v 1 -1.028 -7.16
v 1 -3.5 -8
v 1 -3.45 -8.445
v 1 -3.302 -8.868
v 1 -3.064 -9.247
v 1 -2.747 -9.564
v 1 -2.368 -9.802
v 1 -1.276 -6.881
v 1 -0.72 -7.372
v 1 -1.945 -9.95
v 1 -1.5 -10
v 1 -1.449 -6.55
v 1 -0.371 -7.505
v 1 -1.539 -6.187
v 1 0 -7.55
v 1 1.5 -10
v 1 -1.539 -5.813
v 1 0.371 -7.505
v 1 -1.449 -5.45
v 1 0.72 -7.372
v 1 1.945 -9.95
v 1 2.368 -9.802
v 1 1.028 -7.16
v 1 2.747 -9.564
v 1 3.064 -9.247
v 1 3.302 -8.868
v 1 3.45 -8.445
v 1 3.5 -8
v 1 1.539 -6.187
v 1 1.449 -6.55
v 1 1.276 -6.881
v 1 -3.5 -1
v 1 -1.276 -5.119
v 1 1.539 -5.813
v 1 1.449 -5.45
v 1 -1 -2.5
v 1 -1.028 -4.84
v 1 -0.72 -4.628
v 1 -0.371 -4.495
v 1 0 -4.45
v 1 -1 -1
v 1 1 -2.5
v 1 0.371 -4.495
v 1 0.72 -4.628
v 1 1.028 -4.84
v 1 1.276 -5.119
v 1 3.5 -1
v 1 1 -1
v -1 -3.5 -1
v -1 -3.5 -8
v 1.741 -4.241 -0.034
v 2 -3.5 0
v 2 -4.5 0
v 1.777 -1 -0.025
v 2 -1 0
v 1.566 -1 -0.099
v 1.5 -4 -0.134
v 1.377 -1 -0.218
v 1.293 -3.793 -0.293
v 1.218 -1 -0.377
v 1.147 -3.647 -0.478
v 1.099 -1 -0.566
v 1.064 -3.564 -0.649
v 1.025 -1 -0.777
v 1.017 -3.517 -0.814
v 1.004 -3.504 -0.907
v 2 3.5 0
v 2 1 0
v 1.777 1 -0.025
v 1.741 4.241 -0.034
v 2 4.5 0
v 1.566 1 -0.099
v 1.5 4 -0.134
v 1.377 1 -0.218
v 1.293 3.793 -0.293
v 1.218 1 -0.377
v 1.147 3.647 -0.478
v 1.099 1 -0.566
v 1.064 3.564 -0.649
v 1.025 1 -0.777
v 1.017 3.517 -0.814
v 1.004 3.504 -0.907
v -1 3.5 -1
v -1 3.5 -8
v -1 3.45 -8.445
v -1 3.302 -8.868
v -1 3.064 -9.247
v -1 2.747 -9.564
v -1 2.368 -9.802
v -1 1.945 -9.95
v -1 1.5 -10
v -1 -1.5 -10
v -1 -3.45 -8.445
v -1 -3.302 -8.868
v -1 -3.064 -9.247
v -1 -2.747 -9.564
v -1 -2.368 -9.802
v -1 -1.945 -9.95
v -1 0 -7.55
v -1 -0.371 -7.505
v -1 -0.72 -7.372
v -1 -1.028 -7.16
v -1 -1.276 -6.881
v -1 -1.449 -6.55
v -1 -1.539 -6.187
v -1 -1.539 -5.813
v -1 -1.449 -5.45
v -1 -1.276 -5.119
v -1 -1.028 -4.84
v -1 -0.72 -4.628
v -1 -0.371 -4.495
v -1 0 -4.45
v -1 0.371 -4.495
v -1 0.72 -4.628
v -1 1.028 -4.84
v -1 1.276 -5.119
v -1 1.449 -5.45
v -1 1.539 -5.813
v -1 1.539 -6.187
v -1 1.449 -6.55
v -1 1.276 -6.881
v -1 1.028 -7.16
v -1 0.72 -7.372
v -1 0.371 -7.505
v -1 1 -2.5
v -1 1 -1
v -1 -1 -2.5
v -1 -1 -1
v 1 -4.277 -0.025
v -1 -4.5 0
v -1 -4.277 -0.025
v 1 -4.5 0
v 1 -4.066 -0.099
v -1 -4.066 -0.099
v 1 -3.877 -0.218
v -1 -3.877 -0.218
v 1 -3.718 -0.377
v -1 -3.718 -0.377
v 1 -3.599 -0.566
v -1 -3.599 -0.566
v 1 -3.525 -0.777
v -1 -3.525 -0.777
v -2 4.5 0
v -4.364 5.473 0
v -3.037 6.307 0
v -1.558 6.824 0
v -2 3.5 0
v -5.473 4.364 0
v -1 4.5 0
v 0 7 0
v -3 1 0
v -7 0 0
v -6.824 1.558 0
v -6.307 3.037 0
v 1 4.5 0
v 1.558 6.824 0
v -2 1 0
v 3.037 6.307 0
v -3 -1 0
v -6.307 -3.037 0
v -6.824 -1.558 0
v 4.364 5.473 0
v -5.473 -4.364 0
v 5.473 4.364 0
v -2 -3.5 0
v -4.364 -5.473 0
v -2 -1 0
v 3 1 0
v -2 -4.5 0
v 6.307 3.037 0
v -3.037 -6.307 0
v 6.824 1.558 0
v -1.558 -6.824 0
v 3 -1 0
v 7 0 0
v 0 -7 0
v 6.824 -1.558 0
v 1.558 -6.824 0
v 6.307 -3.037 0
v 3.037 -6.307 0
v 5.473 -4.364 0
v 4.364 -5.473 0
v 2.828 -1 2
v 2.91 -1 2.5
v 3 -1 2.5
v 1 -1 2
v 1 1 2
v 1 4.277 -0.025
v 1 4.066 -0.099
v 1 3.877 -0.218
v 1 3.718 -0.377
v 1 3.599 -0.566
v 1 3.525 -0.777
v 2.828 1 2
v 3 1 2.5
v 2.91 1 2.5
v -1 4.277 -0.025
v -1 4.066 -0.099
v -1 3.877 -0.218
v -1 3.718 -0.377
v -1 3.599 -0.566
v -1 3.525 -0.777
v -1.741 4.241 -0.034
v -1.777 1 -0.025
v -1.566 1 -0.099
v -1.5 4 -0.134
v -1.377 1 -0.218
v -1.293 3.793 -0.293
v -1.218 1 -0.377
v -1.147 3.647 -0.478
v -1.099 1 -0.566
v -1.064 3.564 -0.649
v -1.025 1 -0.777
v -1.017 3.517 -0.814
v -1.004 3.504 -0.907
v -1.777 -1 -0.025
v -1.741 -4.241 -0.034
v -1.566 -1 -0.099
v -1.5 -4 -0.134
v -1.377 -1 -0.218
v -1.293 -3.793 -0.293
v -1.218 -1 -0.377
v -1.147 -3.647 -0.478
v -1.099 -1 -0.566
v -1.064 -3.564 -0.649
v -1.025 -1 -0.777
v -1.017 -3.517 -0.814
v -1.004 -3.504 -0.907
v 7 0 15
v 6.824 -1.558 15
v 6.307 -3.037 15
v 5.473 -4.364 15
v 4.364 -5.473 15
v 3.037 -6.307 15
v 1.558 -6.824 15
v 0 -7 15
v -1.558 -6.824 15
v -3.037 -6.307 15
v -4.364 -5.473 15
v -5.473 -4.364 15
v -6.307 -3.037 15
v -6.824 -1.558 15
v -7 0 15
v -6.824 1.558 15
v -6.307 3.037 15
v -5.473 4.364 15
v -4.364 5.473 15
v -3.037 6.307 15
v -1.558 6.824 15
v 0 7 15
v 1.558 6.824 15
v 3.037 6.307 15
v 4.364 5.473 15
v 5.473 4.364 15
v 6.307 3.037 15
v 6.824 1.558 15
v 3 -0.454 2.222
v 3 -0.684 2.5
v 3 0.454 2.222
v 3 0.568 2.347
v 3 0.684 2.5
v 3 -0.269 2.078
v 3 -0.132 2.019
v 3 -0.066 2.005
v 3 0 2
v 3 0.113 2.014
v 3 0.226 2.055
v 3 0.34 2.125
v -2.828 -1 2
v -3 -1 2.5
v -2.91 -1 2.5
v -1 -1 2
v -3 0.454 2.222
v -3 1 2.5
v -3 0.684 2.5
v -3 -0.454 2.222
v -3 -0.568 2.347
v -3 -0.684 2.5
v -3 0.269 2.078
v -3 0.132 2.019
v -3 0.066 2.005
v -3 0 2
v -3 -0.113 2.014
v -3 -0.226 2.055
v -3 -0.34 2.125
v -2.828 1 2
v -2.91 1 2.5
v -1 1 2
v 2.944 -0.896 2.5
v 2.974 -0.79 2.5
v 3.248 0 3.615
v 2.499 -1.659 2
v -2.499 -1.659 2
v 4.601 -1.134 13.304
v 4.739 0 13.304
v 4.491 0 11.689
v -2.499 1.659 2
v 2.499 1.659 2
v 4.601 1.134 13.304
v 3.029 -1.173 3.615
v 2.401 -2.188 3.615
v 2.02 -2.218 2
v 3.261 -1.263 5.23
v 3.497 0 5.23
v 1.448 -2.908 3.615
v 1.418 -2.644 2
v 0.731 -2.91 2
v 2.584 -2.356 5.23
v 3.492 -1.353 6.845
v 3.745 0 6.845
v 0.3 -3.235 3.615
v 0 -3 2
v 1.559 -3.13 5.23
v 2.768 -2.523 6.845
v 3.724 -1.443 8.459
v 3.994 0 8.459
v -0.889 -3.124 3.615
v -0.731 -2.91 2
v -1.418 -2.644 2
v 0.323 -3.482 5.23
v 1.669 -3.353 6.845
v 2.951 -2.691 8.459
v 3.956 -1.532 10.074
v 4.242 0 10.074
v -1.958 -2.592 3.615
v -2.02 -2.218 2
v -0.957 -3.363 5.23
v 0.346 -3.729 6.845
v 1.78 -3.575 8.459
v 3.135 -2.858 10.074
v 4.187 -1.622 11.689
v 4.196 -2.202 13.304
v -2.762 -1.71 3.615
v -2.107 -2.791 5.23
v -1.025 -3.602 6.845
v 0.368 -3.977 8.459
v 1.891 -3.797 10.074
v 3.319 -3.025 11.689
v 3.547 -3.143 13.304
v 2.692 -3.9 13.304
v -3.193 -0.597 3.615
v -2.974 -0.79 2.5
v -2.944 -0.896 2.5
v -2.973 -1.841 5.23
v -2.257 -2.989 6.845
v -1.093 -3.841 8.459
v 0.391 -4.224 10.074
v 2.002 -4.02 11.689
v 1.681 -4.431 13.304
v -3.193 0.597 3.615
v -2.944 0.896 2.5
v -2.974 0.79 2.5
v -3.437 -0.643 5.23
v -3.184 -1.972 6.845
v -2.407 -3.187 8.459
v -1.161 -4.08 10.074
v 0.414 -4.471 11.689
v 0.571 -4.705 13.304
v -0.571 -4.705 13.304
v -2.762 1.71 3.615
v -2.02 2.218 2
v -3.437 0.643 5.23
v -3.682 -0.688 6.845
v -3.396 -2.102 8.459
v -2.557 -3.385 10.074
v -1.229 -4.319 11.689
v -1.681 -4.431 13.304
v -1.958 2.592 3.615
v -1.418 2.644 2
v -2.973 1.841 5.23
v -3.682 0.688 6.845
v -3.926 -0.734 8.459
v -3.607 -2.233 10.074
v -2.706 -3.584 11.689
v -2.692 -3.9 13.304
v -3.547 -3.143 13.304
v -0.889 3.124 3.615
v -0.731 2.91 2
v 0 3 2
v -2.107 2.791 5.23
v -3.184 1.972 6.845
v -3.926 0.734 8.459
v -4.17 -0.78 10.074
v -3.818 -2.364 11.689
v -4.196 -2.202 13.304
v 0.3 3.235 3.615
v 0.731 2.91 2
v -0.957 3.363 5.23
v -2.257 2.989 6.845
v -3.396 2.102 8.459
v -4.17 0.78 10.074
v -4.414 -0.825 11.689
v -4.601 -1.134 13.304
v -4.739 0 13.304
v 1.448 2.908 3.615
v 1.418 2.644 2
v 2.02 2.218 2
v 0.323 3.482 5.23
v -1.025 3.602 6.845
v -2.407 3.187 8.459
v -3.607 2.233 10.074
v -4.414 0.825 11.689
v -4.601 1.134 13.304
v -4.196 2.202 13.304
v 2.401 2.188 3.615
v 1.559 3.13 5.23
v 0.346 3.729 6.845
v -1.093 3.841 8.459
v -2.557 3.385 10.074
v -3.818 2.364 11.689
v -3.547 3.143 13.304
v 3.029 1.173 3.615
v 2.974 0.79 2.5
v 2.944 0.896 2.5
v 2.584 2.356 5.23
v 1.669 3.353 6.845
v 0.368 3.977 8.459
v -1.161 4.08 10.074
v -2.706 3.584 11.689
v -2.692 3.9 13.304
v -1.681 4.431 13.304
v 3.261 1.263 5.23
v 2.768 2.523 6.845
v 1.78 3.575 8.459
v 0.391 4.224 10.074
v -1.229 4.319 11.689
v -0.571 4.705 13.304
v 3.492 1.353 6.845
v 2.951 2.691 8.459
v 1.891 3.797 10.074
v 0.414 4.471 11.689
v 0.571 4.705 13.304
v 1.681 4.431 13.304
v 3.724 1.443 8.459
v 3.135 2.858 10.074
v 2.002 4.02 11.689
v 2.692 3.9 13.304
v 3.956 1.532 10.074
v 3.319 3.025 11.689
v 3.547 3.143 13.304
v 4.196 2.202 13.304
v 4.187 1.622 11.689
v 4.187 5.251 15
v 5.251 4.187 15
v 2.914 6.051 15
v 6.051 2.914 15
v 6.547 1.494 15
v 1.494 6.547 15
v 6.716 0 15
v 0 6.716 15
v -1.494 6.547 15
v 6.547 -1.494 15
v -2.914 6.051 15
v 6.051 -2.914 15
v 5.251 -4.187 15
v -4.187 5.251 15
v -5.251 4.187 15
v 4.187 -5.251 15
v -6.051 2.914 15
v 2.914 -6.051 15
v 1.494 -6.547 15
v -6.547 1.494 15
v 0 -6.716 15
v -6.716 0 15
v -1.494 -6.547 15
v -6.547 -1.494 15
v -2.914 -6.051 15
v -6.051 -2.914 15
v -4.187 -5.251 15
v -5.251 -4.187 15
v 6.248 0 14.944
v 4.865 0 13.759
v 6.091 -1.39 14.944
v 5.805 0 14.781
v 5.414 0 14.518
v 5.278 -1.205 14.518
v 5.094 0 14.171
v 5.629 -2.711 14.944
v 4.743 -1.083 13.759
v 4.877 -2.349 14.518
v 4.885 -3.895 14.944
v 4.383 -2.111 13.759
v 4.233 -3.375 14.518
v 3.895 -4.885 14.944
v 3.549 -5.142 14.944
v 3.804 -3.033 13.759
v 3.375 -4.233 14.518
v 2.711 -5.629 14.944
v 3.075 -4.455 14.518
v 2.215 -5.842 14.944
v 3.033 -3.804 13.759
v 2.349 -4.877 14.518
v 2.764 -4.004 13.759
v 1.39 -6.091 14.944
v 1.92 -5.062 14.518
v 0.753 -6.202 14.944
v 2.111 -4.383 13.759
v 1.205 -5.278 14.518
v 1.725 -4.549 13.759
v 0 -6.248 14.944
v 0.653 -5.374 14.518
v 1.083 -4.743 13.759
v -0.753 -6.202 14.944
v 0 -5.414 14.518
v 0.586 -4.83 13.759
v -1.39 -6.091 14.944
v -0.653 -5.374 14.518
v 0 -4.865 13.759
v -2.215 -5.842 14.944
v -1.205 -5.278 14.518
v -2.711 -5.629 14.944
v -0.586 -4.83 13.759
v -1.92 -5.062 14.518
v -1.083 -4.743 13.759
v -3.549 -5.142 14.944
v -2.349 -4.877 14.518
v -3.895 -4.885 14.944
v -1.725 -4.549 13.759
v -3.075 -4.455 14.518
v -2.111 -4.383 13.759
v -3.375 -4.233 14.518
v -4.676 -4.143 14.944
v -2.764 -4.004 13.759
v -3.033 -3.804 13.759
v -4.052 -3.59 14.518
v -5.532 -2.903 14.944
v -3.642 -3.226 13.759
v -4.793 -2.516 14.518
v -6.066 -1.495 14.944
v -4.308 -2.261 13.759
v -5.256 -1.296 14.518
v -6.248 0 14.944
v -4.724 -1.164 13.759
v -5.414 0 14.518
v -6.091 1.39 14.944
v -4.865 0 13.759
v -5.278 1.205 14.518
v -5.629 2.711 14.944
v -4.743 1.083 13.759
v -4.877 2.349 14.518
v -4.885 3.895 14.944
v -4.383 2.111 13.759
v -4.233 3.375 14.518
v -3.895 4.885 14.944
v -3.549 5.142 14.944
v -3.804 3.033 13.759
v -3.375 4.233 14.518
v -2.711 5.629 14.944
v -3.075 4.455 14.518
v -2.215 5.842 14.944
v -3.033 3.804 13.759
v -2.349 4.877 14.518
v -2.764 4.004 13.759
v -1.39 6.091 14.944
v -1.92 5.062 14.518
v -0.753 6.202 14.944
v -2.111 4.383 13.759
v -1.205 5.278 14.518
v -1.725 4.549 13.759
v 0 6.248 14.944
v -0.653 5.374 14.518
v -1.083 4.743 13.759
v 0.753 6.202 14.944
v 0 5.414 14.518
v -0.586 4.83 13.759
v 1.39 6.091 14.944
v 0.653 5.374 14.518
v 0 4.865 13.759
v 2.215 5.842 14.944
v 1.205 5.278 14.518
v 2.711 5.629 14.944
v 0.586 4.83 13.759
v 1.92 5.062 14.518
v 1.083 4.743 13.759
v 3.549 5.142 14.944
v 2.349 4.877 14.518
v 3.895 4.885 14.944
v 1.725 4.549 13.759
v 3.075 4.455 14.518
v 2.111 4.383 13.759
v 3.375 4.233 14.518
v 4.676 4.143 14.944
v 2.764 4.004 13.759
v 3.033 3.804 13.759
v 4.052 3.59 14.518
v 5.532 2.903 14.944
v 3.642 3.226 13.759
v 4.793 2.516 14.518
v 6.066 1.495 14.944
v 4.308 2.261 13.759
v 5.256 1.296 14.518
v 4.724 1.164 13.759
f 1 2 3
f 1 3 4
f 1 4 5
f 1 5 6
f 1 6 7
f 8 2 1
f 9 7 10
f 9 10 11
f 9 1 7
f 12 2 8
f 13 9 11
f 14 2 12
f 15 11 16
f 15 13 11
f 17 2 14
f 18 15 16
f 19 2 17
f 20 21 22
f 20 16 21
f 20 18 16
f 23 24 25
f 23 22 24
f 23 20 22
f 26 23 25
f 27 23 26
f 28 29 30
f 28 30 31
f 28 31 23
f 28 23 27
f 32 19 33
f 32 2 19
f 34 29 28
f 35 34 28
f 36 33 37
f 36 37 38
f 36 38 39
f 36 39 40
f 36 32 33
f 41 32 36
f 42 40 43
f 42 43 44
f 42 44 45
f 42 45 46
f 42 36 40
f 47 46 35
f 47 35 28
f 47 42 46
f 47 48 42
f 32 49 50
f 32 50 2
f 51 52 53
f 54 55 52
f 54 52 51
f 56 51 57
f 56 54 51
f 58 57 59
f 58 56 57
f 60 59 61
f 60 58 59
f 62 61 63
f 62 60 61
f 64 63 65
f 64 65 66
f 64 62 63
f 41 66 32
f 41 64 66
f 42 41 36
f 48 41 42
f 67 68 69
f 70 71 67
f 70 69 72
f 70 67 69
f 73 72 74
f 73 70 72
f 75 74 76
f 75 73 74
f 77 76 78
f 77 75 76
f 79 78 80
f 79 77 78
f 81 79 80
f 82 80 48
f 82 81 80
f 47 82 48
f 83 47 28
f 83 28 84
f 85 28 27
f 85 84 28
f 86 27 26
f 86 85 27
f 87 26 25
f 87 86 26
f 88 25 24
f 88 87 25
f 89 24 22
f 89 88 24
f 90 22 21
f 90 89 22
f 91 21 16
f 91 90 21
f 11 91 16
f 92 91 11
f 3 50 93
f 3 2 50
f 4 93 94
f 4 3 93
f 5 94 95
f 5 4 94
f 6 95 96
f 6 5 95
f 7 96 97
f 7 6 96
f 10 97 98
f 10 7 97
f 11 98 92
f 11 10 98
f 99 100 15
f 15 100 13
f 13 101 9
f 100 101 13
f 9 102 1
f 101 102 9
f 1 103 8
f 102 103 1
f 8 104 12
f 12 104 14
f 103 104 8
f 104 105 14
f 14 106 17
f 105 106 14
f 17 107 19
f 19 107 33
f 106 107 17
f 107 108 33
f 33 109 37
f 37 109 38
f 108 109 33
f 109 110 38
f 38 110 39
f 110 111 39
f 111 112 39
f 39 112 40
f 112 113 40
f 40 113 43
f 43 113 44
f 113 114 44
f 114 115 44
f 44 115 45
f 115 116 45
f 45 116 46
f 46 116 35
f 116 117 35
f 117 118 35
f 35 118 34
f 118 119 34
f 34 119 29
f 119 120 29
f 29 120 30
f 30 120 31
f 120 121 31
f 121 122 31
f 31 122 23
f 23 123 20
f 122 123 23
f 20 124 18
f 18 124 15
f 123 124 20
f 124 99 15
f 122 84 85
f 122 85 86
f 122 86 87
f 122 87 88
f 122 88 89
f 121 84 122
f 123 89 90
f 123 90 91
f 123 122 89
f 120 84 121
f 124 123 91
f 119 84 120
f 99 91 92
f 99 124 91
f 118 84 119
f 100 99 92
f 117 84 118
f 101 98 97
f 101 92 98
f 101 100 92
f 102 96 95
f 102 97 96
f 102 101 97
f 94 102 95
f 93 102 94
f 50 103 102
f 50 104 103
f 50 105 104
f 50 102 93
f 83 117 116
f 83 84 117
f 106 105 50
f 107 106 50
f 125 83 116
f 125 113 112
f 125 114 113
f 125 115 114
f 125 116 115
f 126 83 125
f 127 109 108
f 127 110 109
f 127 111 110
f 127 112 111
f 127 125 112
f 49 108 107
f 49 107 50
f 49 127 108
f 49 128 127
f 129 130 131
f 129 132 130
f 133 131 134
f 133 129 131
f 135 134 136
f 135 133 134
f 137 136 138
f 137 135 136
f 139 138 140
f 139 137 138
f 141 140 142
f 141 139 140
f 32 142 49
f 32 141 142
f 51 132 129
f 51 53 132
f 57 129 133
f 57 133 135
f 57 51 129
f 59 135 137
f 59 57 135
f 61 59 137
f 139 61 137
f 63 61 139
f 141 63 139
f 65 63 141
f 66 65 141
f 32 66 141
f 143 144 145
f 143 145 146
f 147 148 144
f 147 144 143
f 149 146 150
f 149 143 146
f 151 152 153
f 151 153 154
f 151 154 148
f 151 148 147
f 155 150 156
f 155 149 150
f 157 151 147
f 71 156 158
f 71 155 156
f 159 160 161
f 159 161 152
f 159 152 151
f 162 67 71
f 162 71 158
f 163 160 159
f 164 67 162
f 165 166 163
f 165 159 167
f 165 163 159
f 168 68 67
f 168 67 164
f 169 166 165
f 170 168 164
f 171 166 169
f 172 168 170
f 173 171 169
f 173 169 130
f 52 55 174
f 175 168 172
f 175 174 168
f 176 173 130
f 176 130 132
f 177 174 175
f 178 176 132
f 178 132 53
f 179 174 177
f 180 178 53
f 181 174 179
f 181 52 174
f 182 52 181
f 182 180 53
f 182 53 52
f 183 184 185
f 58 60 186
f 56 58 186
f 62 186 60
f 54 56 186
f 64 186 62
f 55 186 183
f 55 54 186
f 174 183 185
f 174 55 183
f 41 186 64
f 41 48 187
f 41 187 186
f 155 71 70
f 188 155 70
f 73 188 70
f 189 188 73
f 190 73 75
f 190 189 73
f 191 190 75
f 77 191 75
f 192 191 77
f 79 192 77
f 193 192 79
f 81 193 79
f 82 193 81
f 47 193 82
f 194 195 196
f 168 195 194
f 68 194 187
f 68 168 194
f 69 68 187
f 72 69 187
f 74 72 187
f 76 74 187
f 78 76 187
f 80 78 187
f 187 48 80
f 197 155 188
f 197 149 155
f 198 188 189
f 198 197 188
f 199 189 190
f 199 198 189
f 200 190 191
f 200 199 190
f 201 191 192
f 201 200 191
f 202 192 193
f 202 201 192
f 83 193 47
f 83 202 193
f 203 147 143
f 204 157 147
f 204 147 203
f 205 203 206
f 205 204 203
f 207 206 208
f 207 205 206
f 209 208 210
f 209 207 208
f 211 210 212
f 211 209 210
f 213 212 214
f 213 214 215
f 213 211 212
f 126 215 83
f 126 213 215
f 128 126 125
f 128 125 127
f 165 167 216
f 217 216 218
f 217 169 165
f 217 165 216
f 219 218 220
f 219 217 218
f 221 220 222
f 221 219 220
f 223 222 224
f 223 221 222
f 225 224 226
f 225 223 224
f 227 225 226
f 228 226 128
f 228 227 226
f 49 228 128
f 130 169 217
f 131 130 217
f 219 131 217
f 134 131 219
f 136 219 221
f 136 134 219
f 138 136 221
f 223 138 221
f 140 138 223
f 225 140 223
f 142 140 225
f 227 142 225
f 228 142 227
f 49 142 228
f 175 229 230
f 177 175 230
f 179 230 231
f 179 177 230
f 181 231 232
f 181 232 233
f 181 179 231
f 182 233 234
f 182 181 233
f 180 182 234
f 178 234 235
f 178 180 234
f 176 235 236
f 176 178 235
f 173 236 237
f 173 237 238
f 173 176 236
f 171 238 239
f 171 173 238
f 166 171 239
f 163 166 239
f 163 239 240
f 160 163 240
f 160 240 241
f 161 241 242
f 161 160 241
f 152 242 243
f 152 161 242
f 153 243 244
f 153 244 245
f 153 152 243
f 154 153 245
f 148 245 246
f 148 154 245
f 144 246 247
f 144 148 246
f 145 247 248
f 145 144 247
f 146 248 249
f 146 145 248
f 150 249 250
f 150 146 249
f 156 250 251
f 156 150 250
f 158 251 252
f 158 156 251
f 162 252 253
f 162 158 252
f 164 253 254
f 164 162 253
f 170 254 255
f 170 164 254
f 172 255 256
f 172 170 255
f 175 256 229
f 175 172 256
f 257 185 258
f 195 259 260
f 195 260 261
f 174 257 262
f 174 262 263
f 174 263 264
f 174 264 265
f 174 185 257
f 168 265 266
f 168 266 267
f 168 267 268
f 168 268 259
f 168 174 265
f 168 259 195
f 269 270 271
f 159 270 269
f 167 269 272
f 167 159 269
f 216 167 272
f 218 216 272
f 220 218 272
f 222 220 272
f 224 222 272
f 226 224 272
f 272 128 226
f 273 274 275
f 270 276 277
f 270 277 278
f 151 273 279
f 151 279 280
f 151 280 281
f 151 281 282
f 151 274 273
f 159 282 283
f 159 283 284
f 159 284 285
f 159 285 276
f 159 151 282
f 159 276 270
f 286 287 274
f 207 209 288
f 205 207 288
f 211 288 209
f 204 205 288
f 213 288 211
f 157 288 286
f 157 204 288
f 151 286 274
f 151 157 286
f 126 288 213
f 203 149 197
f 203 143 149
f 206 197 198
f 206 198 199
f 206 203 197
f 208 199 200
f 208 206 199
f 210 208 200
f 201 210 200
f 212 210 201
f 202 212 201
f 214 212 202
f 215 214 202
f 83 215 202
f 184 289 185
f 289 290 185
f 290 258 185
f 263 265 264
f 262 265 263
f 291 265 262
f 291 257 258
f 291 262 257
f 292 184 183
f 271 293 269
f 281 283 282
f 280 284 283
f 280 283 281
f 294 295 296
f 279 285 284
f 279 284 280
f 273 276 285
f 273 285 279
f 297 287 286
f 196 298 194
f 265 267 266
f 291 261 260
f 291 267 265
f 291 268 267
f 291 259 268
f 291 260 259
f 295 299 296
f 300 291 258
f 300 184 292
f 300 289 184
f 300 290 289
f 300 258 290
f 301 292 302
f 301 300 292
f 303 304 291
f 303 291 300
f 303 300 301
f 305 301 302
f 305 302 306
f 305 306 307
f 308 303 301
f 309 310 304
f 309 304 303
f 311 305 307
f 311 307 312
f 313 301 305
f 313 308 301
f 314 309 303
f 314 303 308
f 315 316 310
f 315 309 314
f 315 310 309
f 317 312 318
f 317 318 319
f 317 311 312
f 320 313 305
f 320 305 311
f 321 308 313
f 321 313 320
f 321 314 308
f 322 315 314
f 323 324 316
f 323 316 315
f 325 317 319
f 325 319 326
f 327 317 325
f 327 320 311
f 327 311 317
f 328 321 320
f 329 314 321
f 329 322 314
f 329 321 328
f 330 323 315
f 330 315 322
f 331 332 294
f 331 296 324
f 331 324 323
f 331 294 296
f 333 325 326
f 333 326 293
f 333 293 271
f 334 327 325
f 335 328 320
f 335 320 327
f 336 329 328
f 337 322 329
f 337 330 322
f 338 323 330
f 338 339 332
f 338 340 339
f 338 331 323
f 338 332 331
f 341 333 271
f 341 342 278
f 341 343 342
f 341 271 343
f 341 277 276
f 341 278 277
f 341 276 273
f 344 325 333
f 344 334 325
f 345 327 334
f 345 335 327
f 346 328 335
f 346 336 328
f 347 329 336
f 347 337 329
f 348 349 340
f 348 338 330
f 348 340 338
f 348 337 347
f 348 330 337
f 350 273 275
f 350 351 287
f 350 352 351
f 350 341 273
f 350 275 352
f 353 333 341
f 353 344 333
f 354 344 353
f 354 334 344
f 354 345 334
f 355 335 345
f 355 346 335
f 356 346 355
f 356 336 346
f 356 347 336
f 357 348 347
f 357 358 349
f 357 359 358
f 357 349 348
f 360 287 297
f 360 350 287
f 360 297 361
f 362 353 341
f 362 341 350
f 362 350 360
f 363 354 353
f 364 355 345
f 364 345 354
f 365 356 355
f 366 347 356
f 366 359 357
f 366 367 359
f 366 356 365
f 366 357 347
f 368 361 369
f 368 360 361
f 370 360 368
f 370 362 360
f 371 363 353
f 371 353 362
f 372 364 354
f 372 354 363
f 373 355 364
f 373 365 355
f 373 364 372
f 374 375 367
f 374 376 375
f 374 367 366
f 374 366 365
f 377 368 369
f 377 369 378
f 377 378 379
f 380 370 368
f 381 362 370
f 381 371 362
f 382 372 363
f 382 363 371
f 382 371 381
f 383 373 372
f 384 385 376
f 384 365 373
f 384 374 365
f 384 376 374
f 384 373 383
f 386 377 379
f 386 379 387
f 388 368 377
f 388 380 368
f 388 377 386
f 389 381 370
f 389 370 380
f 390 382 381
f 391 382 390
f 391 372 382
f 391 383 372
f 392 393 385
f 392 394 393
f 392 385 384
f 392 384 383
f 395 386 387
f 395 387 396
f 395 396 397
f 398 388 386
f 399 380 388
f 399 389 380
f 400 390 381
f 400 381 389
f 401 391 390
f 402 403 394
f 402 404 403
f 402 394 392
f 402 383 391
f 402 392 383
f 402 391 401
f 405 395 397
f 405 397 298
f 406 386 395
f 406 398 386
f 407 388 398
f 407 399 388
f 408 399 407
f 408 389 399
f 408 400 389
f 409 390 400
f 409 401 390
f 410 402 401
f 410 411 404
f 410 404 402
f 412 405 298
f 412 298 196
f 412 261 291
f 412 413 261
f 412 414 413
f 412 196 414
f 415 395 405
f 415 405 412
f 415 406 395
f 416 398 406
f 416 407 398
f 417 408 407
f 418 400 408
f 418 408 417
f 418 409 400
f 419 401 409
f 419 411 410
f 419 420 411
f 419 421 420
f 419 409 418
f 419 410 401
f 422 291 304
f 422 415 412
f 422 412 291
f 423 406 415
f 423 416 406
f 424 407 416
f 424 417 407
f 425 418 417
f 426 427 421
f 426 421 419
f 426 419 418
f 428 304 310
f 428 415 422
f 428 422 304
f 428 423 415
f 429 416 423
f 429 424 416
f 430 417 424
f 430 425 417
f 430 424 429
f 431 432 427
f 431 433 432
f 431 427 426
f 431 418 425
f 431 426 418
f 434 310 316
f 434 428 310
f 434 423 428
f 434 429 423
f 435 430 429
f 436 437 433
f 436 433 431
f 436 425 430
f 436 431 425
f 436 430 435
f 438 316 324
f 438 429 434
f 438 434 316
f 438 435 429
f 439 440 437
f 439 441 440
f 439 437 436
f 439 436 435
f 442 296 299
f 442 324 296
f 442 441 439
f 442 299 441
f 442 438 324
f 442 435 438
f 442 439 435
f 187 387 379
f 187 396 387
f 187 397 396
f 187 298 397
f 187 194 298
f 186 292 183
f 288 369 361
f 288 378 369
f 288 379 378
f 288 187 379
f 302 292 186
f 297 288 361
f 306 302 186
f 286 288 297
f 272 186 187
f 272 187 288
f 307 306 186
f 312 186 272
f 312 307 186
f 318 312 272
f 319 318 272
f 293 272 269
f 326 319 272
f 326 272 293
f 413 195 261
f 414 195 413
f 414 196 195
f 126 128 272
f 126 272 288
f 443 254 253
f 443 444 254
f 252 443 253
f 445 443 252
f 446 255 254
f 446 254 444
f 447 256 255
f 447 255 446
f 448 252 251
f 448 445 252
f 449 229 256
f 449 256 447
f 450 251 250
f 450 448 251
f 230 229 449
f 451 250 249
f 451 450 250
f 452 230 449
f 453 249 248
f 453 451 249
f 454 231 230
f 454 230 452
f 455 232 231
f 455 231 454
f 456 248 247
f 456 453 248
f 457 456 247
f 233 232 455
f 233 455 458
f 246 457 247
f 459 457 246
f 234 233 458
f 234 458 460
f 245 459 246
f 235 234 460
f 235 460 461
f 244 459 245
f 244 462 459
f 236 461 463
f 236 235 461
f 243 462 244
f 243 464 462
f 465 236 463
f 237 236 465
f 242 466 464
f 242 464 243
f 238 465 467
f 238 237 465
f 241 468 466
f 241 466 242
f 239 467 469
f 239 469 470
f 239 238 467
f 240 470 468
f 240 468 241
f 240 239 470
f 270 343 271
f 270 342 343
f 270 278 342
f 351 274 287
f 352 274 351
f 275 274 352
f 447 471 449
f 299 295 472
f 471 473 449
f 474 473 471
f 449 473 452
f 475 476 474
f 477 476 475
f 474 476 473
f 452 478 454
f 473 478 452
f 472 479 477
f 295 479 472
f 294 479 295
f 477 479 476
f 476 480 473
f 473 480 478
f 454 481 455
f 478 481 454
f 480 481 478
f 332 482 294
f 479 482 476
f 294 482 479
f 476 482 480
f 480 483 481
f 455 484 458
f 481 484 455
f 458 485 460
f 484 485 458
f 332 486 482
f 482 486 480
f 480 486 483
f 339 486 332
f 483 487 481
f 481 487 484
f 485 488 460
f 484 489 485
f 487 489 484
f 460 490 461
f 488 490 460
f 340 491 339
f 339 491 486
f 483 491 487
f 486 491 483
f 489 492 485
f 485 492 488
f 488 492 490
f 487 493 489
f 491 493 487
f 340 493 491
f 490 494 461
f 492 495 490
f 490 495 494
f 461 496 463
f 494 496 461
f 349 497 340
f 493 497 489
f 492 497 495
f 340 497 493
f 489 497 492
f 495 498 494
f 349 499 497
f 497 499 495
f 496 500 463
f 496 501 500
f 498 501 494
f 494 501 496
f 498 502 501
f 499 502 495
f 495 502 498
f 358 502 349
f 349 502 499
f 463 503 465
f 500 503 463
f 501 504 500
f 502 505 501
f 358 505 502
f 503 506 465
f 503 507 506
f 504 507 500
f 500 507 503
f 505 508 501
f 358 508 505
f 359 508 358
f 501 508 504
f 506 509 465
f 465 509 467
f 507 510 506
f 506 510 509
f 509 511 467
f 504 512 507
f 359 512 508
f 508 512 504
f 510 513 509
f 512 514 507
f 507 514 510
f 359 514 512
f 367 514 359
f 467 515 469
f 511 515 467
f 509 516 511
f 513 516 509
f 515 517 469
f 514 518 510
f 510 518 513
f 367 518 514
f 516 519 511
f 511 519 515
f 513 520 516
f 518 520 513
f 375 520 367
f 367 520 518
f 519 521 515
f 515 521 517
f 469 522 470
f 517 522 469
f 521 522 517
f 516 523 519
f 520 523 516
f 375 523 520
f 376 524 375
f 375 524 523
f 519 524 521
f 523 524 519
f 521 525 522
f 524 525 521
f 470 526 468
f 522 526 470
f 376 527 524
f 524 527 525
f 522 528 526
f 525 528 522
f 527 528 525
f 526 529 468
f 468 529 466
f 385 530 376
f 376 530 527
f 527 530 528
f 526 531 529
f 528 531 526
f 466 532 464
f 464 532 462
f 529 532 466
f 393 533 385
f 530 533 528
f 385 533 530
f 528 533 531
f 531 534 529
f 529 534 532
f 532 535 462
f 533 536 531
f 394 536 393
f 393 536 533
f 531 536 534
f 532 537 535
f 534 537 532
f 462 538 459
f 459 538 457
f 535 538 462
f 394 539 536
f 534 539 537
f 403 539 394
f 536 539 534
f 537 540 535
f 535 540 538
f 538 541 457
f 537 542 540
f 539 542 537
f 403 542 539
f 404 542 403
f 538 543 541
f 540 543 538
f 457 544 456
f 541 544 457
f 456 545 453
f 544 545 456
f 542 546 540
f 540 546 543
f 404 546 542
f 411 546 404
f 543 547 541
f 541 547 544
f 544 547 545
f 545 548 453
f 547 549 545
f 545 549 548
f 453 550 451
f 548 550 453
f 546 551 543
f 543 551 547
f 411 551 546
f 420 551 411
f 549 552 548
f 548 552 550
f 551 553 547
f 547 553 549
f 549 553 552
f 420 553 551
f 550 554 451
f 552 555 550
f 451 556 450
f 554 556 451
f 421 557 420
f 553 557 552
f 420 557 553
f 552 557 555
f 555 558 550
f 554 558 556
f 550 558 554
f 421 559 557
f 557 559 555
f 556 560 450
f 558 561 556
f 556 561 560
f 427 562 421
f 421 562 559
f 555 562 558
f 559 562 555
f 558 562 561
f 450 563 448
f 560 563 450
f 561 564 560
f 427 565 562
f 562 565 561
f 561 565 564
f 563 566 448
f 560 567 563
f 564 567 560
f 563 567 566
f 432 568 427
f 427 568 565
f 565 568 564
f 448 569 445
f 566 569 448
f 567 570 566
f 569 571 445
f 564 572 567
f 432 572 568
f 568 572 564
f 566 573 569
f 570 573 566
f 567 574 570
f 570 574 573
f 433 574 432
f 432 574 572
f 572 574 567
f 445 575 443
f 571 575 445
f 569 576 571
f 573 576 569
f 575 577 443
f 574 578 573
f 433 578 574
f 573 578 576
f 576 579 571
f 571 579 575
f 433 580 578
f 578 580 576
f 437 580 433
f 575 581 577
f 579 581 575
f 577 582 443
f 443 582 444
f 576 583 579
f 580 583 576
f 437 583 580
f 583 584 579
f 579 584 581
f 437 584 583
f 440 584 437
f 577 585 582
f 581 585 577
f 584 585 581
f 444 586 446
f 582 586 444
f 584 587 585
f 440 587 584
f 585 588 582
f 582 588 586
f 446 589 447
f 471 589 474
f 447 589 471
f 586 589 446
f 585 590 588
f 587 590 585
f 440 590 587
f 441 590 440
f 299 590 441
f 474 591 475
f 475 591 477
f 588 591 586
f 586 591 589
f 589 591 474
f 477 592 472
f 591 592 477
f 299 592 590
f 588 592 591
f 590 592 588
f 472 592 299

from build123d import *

# Parameters (mm, degrees)
SKETCH001_W     = 2
SKETCH001_H     = 7
PAD_DEPTH       = 10
FILLET_R        = 1
FILLET001_R     = 1
FILLET002_R     = 1
FILLET003_R     = 1
FILLET004_R     = 2
SKETCH002_R     = 1.55
POCKET_DEPTH    = 5
SKETCH003_W     = 2
SKETCH003_H     = 2
POCKET001_DEPTH = 2.5


with BuildPart() as part:
    # Sketch → Revolution (revolve)
    with BuildSketch(Plane.XZ):
        Polygon((0, 0), (0, 2), (3, 2), (5, 15), (7, 15), (7, 0), align=None)
    revolve(axis=Axis((0, 0, 0), (0, 0, 1)))

    # Sketch001 (on Face5 of Revolution) → Pad (new body)
    with BuildSketch(Plane(origin=(0, 0, 0), x_dir=(1, 0, 0), z_dir=(0, 0, -1))):
        Rectangle(SKETCH001_W, SKETCH001_H)
    extrude(amount=PAD_DEPTH)

    # Fillet
    fillet_edges = [part.edges().sort_by_distance(p)[0] for p in [
        (1, 0, 0),
    ]]
    fillet(fillet_edges, radius=FILLET_R)

    # Fillet001
    fillet001_edges = [part.edges().sort_by_distance(p)[0] for p in [
        (-1, 0, 0),
    ]]
    fillet(fillet001_edges, radius=FILLET001_R)

    # Fillet002
    fillet002_edges = [part.edges().sort_by_distance(p)[0] for p in [
        (0, -3.5, 0),
    ]]
    fillet(fillet002_edges, radius=FILLET002_R)

    # Fillet003
    fillet003_edges = [part.edges().sort_by_distance(p)[0] for p in [
        (0, 3.5, 0),
    ]]
    fillet(fillet003_edges, radius=FILLET003_R)

    # Fillet004
    fillet004_edges = [part.edges().sort_by_distance(p)[0] for p in [
        (-5, 0, 15),
        (0, 3.5, -10),
        (0, -3.5, -10),
    ]]
    fillet(fillet004_edges, radius=FILLET004_R)

    # Sketch002 → Pocket (cut)
    with BuildSketch(Plane(origin=(-1, 0, 0), x_dir=(0, 0, -1), z_dir=(-1, 0, 0))):
        with Locations((6, 0)):
            Circle(SKETCH002_R)
    extrude(amount=-POCKET_DEPTH, mode=Mode.SUBTRACT)

    # Sketch003 (on Face12 of Pocket) → Pocket001 (cut, symmetric)
    with BuildSketch(Plane(origin=(0, 0, 0), x_dir=(1, 0, 0), z_dir=(0, 0, -1))):
        with Locations((-2, 0)):
            Rectangle(SKETCH003_W, SKETCH003_H)
        with Locations((2, 0)):
            Rectangle(SKETCH003_W, SKETCH003_H)
    extrude(amount=POCKET001_DEPTH, both=True, mode=Mode.SUBTRACT)


solid = part.part
